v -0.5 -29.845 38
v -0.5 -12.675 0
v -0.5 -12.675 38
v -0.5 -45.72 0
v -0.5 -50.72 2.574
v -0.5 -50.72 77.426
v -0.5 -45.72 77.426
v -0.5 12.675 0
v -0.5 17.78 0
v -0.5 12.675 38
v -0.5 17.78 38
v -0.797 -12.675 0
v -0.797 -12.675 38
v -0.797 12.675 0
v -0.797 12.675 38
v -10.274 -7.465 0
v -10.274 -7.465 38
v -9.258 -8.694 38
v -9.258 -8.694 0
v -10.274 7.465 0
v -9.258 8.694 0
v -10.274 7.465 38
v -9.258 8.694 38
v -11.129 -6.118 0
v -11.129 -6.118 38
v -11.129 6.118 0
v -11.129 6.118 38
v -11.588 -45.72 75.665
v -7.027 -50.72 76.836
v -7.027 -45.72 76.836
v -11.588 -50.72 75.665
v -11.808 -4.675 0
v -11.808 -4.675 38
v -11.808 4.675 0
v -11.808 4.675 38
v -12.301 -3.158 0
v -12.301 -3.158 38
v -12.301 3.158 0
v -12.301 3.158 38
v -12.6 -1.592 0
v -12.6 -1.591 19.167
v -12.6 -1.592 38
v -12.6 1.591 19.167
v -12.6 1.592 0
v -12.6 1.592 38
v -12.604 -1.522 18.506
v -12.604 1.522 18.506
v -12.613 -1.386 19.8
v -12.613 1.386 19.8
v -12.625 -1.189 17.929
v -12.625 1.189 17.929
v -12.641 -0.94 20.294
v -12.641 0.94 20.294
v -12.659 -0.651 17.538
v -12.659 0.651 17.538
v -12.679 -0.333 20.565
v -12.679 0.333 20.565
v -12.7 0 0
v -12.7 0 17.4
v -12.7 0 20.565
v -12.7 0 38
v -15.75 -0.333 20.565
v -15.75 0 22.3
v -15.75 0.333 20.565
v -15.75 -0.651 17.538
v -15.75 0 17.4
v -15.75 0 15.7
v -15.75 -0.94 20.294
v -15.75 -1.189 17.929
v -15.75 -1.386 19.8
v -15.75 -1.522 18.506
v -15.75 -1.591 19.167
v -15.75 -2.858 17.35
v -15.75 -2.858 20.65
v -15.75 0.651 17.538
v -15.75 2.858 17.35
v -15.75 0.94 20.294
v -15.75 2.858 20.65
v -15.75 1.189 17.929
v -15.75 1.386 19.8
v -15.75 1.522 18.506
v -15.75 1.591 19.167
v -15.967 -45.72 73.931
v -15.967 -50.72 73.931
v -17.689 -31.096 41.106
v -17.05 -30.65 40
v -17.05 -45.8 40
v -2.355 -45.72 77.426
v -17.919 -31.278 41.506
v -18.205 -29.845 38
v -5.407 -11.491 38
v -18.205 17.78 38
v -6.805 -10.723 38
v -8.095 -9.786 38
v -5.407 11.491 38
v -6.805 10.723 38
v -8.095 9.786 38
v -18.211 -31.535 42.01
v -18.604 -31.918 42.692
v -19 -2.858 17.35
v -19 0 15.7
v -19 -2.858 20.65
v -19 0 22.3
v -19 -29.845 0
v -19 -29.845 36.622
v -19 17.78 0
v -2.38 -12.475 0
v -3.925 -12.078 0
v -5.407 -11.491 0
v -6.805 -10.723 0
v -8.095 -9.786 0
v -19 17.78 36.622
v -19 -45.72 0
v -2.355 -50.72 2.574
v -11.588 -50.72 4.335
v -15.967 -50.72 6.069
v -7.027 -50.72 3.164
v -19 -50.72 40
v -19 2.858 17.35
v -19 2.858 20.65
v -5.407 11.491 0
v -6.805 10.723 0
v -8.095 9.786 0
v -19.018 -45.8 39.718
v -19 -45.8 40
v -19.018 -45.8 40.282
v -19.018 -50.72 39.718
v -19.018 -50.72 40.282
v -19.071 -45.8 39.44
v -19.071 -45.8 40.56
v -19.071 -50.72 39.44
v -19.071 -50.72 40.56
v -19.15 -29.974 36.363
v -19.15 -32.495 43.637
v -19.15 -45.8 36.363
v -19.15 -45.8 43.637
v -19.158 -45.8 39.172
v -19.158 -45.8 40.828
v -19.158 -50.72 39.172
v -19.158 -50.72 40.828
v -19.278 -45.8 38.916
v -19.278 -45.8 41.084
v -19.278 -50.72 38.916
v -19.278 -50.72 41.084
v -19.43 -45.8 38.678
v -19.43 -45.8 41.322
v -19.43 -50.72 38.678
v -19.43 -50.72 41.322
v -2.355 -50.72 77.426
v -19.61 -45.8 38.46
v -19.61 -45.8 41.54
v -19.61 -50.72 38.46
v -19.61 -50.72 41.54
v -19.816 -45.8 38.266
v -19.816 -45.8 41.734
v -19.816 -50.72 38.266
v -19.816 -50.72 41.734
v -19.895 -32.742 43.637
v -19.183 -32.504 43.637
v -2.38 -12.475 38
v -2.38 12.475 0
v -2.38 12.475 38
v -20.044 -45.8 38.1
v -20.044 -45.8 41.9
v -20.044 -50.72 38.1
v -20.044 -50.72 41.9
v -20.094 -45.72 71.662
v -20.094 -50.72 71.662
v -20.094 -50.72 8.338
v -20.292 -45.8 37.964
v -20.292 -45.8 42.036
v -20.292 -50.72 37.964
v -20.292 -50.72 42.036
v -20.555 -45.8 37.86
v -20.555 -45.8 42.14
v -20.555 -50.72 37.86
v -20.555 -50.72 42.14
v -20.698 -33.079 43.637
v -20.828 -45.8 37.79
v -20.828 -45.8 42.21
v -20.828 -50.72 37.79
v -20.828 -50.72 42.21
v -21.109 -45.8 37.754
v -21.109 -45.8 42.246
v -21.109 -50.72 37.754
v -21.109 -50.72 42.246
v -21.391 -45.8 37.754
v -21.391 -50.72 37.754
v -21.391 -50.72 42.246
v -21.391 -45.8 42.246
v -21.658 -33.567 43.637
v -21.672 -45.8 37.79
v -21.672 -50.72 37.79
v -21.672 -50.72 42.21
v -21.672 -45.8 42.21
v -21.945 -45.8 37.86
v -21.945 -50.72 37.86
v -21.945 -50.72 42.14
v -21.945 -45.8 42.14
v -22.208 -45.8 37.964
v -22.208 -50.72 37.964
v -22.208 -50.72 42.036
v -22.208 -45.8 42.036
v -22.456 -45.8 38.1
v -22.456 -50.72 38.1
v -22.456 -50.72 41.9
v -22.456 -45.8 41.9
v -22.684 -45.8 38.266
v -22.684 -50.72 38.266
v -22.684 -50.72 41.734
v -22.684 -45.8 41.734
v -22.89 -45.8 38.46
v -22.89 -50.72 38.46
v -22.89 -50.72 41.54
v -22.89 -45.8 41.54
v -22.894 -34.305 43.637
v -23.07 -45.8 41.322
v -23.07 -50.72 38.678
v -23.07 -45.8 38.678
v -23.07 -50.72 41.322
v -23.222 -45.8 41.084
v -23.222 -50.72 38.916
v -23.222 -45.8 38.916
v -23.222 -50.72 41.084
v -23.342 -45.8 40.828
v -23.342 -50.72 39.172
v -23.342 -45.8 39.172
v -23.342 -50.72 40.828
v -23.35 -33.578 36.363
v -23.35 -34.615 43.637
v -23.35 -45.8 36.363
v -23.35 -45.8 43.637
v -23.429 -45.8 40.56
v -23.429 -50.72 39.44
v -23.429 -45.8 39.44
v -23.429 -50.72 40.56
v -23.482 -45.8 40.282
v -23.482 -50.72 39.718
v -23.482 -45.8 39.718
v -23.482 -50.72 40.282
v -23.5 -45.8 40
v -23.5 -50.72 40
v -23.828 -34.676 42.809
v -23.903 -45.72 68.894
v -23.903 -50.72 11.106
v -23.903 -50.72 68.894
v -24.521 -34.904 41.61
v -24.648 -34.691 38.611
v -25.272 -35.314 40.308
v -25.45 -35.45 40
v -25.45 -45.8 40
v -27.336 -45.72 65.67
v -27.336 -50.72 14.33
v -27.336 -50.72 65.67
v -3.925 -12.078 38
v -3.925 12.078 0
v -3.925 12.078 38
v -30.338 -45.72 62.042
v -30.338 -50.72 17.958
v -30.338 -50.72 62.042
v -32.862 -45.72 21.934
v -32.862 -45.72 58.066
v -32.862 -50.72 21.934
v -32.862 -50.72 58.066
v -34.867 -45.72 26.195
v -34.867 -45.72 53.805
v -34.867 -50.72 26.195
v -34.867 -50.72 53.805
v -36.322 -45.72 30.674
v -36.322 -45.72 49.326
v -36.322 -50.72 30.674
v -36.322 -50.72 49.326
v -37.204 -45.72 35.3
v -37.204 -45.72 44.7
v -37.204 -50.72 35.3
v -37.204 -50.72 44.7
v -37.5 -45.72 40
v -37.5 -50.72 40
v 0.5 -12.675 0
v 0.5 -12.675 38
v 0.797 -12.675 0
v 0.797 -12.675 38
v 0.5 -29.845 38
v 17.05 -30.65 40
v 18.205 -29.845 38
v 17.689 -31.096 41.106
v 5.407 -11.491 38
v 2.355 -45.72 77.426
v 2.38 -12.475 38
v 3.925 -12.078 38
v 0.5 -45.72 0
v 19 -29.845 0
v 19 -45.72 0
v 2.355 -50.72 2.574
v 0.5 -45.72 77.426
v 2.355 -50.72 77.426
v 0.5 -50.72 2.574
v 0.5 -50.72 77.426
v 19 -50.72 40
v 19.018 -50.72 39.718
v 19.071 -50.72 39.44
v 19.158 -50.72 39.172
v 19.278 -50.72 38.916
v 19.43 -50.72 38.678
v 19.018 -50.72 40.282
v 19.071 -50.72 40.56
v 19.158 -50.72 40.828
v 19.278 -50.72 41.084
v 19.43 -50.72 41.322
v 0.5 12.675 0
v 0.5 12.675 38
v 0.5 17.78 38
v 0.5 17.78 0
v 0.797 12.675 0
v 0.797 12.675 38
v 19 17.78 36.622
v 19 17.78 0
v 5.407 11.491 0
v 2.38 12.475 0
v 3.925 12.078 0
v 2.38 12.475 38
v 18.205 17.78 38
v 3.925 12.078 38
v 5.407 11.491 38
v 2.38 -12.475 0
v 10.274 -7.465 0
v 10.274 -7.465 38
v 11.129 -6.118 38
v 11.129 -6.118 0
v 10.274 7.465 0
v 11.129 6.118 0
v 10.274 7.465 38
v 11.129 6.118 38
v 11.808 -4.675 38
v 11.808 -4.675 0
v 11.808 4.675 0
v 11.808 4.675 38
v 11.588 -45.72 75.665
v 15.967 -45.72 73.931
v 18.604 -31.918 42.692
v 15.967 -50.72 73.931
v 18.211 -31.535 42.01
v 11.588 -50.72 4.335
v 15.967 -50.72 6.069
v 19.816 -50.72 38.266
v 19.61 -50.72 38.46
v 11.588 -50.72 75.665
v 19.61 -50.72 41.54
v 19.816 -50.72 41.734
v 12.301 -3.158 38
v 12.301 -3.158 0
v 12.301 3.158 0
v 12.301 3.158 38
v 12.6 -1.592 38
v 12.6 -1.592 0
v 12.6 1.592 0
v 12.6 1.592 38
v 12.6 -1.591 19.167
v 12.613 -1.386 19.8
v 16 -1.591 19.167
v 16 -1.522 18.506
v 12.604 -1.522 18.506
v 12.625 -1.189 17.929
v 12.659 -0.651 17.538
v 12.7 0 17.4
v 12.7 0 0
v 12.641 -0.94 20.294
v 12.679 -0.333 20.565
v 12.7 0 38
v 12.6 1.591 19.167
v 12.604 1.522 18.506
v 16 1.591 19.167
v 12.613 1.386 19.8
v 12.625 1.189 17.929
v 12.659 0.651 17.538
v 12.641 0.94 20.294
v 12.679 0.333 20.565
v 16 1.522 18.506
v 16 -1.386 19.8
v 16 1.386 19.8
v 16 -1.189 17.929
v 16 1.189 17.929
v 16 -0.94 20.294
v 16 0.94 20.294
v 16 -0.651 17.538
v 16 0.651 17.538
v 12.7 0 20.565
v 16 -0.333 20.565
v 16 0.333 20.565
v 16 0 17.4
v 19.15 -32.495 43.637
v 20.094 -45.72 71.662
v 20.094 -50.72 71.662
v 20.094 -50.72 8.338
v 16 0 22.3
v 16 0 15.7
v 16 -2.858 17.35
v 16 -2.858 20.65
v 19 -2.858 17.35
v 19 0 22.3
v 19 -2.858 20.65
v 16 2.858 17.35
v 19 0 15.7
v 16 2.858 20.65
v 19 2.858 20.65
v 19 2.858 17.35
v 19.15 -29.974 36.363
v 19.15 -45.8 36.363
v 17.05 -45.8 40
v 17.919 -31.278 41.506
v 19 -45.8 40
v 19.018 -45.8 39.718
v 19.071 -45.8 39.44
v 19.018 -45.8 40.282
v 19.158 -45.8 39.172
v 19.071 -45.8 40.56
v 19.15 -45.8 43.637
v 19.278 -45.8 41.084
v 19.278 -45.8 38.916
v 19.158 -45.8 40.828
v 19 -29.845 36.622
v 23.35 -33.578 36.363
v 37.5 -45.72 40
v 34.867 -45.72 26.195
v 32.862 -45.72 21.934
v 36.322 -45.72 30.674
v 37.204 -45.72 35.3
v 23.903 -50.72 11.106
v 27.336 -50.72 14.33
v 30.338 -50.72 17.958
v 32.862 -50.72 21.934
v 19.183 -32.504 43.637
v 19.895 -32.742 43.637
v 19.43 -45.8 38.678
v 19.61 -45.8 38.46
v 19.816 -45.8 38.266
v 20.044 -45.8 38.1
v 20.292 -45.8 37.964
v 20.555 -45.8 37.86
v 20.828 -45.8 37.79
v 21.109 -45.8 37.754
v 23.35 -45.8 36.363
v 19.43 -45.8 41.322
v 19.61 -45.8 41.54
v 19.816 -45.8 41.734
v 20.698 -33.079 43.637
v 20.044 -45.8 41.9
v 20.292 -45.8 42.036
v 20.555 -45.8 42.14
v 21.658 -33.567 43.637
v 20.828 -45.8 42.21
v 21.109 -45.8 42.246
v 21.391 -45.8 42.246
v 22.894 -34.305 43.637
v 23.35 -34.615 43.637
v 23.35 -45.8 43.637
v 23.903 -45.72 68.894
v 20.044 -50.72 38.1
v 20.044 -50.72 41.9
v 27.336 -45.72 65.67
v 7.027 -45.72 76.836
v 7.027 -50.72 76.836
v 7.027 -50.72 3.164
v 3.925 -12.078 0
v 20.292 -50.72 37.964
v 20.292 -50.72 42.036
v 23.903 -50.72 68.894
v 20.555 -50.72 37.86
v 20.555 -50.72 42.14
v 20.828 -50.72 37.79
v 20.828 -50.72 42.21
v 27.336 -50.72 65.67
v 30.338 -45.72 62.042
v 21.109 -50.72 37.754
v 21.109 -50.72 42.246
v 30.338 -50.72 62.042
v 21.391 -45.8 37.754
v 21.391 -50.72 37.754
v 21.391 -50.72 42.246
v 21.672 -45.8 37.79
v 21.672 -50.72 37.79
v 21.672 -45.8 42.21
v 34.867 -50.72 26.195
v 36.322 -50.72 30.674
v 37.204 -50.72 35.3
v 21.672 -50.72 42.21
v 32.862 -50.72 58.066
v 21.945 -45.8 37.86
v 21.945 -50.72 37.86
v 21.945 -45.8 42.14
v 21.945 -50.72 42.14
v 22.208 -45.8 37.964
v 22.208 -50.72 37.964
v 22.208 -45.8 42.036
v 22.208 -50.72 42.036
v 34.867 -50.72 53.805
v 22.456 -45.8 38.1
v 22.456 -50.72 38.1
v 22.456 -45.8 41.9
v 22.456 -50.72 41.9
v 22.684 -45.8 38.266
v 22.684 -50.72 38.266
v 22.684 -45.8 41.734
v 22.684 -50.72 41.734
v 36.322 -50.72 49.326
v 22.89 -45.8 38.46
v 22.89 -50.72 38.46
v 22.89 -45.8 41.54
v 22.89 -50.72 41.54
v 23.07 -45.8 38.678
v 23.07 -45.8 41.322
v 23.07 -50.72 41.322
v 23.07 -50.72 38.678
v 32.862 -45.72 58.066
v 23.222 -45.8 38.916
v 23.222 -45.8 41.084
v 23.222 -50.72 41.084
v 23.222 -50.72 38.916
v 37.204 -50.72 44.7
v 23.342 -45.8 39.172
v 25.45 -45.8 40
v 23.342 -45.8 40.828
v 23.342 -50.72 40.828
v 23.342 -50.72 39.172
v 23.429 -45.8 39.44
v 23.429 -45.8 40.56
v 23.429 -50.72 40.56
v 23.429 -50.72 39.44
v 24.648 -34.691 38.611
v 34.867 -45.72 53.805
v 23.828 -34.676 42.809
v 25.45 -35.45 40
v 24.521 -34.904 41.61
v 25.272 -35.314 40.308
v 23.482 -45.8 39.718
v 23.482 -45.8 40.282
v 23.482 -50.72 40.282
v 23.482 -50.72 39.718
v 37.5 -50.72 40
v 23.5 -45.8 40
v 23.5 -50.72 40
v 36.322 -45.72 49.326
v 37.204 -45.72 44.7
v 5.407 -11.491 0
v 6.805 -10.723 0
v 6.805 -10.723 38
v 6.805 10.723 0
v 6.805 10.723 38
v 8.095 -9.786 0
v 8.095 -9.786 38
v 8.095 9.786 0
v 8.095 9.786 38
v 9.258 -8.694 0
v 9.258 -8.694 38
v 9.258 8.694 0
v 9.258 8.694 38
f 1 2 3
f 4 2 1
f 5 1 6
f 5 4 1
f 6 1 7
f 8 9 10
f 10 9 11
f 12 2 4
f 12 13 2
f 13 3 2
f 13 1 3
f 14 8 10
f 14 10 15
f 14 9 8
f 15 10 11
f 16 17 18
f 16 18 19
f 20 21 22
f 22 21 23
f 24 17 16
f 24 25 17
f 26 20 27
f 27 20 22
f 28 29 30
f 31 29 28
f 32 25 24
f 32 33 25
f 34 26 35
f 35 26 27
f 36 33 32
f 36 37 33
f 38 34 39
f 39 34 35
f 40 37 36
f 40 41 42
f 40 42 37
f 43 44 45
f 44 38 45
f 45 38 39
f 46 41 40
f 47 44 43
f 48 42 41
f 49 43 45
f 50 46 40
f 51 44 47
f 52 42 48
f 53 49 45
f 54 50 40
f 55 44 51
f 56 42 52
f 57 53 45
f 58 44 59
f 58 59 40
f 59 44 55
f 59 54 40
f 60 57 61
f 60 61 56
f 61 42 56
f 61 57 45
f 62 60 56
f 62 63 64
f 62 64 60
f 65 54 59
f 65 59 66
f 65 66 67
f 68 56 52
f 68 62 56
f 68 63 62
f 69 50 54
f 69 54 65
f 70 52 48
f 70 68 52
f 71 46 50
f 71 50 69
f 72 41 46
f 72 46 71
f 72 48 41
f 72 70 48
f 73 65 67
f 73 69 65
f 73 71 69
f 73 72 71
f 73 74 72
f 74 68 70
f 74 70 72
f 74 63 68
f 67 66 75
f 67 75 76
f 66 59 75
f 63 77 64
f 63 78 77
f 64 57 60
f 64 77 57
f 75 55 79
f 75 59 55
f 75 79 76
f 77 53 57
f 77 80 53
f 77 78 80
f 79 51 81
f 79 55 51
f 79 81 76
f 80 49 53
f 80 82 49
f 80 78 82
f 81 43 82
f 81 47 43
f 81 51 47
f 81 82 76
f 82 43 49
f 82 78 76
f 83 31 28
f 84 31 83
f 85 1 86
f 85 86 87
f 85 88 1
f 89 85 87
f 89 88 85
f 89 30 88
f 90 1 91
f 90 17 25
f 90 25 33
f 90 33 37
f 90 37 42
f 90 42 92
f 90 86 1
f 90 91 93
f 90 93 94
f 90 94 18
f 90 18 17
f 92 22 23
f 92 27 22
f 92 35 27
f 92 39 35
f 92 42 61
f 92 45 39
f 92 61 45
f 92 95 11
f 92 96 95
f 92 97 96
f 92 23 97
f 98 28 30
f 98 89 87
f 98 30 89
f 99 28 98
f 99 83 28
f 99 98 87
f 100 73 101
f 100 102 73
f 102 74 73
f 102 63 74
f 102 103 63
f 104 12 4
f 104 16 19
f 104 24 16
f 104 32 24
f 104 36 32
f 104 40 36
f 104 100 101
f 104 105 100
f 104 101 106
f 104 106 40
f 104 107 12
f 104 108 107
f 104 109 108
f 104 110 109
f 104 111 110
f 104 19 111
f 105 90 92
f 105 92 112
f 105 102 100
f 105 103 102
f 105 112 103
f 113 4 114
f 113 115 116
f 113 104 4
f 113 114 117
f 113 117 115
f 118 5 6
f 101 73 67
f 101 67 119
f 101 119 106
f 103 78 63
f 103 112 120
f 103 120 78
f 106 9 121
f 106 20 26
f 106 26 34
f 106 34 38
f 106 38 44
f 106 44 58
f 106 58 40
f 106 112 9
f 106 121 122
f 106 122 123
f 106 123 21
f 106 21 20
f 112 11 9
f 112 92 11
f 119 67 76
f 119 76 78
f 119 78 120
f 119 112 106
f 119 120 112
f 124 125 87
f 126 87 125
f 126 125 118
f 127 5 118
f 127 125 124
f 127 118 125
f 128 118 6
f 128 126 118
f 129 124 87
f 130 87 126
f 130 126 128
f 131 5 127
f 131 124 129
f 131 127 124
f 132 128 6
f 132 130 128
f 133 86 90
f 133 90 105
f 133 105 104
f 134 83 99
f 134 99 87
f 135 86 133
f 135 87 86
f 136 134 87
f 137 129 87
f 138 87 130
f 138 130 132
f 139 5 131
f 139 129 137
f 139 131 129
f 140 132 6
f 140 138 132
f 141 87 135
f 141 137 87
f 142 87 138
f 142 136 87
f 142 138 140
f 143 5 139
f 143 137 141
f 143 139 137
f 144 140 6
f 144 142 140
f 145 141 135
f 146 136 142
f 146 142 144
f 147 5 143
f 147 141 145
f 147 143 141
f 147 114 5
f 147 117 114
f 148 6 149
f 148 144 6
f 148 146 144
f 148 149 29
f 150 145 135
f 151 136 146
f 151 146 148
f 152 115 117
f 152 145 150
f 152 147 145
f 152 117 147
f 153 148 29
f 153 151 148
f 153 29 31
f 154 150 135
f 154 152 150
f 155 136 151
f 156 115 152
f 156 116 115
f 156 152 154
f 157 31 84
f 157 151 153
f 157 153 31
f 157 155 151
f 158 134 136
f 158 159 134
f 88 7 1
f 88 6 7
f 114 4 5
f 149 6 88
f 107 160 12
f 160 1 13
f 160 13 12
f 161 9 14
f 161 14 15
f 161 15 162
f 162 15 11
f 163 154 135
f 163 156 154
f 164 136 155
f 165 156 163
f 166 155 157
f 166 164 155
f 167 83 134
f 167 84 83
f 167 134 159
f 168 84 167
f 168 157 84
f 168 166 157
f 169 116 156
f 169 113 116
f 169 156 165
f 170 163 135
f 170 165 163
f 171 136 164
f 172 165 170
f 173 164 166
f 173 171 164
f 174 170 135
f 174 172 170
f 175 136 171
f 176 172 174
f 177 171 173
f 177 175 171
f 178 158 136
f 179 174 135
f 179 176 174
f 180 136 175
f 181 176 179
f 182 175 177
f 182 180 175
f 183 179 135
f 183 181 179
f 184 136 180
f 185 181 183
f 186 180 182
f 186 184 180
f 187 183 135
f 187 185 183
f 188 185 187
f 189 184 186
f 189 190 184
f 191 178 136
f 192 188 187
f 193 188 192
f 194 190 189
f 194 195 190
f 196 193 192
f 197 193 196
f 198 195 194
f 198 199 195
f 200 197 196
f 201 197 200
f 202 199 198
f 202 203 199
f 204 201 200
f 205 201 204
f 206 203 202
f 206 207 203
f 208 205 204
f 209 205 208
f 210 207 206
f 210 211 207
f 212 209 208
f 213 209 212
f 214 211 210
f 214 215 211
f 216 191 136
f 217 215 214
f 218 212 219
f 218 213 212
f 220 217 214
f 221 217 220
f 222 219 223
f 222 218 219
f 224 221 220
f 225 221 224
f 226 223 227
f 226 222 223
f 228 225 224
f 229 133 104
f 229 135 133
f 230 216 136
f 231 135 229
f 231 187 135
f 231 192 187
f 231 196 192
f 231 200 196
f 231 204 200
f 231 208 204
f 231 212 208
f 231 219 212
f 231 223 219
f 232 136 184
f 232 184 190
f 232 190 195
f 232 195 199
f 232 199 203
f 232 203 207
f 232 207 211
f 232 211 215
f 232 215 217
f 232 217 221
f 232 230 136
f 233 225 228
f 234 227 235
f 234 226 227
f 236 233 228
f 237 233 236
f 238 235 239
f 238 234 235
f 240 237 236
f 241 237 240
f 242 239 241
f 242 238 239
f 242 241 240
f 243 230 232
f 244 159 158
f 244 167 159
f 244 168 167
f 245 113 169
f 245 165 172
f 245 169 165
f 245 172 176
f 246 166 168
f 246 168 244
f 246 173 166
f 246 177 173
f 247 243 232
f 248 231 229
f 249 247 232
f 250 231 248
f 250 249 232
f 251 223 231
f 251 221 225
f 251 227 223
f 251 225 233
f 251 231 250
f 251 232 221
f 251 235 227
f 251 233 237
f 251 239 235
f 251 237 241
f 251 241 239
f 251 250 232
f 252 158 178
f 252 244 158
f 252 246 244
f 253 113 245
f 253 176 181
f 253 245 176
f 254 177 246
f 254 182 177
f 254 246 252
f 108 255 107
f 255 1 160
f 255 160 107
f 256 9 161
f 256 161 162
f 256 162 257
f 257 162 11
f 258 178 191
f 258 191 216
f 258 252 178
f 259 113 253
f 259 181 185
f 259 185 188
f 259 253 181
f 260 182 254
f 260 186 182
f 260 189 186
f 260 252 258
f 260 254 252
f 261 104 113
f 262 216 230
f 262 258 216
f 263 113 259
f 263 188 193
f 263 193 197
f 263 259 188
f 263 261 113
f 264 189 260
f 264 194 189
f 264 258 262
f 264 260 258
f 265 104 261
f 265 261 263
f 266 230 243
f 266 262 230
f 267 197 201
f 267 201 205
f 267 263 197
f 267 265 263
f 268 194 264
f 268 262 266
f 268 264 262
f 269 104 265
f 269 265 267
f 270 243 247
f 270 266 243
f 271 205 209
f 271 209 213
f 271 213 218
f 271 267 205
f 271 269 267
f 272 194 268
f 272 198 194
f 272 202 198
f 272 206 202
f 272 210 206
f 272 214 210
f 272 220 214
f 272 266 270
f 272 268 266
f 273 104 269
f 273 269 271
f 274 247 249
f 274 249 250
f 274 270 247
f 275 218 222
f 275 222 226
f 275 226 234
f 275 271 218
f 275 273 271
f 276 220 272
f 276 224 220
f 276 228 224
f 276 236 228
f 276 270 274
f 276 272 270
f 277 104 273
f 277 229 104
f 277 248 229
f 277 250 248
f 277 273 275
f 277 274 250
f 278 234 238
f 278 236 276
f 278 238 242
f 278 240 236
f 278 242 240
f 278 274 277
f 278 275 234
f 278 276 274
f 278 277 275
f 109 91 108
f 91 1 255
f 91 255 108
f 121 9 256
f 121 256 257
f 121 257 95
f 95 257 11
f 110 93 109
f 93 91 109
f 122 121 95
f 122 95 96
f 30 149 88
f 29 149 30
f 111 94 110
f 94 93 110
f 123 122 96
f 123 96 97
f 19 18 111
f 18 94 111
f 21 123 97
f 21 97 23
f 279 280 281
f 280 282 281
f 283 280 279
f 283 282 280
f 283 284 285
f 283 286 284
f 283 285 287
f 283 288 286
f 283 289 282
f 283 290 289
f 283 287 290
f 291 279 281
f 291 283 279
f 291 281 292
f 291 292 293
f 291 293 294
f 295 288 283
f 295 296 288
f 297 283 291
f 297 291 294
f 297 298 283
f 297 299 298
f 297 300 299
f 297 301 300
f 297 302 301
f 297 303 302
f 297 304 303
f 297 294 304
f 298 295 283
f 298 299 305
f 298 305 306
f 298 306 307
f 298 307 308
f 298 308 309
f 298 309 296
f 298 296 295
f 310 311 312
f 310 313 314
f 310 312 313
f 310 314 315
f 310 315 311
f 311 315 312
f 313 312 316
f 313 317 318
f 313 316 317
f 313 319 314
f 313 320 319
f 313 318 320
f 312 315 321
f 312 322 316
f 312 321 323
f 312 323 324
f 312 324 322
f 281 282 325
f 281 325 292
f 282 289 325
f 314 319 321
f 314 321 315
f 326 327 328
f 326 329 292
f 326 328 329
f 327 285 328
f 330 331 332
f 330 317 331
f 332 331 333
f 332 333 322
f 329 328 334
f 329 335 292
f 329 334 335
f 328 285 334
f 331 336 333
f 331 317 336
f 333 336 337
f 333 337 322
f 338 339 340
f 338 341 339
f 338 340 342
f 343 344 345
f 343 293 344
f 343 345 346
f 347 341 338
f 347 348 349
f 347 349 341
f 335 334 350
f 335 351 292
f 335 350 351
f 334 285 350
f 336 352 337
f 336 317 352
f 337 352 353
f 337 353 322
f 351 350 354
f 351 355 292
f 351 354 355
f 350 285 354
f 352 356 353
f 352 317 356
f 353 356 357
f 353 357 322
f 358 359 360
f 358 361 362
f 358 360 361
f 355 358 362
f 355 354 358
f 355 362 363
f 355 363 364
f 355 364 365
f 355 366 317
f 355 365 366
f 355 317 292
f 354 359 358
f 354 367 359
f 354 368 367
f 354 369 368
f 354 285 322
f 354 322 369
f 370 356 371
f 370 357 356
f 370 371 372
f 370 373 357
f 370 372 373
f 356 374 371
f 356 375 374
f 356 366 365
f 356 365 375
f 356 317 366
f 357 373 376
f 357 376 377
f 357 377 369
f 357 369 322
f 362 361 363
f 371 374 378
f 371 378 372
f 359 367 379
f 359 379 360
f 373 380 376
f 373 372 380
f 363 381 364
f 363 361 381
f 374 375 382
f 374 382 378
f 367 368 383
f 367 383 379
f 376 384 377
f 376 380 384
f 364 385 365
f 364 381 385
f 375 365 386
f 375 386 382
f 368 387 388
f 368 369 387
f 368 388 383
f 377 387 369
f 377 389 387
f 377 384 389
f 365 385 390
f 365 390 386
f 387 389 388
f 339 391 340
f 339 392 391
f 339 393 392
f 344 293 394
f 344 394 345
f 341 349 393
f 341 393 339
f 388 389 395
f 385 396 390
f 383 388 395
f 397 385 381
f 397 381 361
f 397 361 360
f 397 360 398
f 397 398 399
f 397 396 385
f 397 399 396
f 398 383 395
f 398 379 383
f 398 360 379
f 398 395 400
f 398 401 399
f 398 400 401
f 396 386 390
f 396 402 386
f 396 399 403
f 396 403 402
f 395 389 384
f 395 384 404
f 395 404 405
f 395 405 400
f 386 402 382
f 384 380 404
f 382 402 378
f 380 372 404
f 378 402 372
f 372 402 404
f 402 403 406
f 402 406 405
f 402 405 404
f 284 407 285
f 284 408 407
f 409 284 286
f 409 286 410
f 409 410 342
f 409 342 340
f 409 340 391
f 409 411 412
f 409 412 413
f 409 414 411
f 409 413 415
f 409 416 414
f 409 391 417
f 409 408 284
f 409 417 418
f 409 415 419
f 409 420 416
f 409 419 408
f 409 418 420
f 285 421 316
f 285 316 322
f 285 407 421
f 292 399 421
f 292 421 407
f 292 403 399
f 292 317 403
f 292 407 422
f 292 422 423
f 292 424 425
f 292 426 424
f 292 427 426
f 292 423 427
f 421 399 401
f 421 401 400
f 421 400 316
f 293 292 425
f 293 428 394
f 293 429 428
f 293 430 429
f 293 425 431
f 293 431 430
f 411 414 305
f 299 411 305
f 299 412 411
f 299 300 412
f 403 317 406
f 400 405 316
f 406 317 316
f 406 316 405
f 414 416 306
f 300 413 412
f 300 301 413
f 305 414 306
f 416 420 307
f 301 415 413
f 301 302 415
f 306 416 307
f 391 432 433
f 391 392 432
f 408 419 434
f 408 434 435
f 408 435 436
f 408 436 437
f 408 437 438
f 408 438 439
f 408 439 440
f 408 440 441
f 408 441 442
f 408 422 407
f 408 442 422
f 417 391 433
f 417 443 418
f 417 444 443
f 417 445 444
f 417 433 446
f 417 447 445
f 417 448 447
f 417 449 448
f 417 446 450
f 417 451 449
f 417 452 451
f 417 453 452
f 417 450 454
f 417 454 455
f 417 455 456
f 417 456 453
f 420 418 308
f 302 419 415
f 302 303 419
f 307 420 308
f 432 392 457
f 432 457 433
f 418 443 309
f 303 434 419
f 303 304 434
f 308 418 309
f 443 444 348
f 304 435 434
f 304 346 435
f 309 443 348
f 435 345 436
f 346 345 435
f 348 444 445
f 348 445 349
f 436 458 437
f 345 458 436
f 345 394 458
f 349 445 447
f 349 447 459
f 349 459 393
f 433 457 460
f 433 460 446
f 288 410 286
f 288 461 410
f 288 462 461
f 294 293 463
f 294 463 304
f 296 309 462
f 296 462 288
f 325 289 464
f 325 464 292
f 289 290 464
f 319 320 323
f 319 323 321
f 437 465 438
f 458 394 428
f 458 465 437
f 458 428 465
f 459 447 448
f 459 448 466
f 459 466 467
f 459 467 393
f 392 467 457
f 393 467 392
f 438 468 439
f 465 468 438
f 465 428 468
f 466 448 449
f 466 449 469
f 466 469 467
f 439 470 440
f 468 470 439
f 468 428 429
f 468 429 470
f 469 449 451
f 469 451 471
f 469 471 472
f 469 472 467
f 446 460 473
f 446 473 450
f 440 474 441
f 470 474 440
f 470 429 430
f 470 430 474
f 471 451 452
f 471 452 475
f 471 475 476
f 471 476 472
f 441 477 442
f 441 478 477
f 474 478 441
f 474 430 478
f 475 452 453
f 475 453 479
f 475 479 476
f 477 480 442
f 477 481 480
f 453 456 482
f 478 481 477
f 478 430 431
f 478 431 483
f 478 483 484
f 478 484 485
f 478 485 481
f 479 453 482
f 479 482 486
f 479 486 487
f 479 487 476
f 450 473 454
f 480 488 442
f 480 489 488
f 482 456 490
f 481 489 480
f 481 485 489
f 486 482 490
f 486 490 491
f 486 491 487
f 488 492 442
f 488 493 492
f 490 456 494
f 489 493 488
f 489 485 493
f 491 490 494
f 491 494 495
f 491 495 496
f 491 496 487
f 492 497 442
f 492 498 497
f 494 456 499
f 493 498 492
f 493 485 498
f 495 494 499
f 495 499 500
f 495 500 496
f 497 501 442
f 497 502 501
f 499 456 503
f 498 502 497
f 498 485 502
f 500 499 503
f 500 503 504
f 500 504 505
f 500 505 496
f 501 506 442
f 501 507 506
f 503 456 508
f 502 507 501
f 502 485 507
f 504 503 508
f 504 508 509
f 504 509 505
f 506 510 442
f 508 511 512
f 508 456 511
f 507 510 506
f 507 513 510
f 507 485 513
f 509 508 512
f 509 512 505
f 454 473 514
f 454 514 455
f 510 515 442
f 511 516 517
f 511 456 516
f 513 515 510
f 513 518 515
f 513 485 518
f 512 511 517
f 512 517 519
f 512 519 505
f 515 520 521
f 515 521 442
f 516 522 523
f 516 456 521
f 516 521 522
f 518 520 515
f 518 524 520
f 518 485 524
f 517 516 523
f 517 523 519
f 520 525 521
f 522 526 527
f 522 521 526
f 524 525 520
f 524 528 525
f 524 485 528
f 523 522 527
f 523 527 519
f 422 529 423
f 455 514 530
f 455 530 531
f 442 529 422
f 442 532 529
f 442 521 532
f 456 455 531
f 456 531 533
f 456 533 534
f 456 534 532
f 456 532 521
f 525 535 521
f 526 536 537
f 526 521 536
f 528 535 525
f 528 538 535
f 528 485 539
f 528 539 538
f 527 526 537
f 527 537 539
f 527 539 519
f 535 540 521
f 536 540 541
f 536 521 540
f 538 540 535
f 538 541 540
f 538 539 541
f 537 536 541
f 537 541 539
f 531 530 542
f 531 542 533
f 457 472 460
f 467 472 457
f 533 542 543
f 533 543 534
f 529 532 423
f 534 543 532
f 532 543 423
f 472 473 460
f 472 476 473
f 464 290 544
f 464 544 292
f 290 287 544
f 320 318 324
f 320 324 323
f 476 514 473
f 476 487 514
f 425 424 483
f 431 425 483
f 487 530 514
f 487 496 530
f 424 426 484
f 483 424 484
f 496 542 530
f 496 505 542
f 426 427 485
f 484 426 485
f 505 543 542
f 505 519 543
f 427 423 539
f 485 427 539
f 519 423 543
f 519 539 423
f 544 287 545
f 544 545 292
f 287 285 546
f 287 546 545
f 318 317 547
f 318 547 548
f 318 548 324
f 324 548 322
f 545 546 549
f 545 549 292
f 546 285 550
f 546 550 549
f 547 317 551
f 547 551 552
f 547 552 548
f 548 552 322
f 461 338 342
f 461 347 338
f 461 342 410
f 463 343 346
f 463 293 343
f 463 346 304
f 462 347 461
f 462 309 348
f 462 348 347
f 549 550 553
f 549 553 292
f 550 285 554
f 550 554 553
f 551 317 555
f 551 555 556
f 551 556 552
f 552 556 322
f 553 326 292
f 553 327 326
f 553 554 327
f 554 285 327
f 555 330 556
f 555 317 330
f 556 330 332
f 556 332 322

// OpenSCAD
include <../parameters.scad>

module 888_2003 (coupling_wall_thickness, thickness_between_tubes,draft = true){

//modifikace spojky 666_1004

    bevelled_width = main_tube_outer_diameter + 2*coupling_wall_thickness;

    magnet_displacement = 40;
    wall_thickness = 5;
    screw_length = 30;
    magnet_diameter = 75;
    distance_between_screws = 42.5;


    difference(){

        union(){
            translate([-(coupling_width_666_1004/2), - depth_666_1004 + main_tube_outer_diameter/2 + coupling_wall_thickness,0])
                  cube([coupling_width_666_1004, depth_666_1004, height_666_1004]);


            hull(){

                translate([-(coupling_width_666_1004/2), - depth_666_1004 + main_tube_outer_diameter/2 + coupling_wall_thickness,0])
                      cube([coupling_width_666_1004, depth_666_1004/4, height_666_1004]);

                translate([0, - depth_666_1004 + main_tube_outer_diameter/2 + coupling_wall_thickness , magnet_displacement])
                    rotate([90, 0, 0])
                        cylinder(d = magnet_diameter, h = 5, $fn = draft?50:100);
            }

        }

        // middle cut
        translate ([-0.5, -depth_666_1004 , - global_clearance/2])
            cube ([1, 3*depth_666_1004 + global_clearance, 3* height_666_1004 + global_clearance]);

        //tubes
        translate([0,0,- global_clearance/2])
                cylinder(h = height_666_1004 + global_clearance,r = main_tube_outer_diameter/2, $fn= draft ? 50 : 200);

        //screw
        translate([-coupling_width_666_1004/2 - global_clearance/2,0,height_666_1004/2])
           rotate ([0,90,0])   
                cylinder(h = coupling_width_666_1004 + global_clearance, r = M3_screw_diameter/2, $fn = 15);
                
        //nut
        translate([-coupling_width_666_1004/2 - global_clearance/2,0, height_666_1004/2])
            rotate ([0,90,0])
                cylinder (h = M3_screw_head_height + global_clearance, r = M3_nut_diameter/2, $fn = 6);
        
        translate([coupling_width_666_1004/2 - M3_screw_head_height,0,height_666_1004/2])
           rotate ([0,90,0])
                cylinder (h = M3_screw_head_height + global_clearance, r = M3_nut_diameter/2, $fn = 6);

        translate([distance_between_screws/2, - depth_666_1004 + main_tube_outer_diameter/2, magnet_displacement]) 
            rotate([-90, 0, 0])
            {
                cylinder(d = M4_screw_diameter, h = 10 + global_clearance, $fn=50);
                translate([0,0,5])
                   cylinder(d = M4_nut_diameter, h = 50 * M4_nut_height, $fn = 6);
            }

        translate([- distance_between_screws/2,- depth_666_1004 + main_tube_outer_diameter/2 , magnet_displacement])
            rotate([-90, 0, 0])
            { 
                cylinder(d = M4_screw_diameter, h = 10 + global_clearance, $fn = 50);
                translate([0,0,5])
                    cylinder(d = M4_nut_diameter, h = 50 * M4_nut_height, $fn = 6);
            }


    }

}


888_2003 (coupling_wall_thickness, thickness_between_tubes, draft = true);
